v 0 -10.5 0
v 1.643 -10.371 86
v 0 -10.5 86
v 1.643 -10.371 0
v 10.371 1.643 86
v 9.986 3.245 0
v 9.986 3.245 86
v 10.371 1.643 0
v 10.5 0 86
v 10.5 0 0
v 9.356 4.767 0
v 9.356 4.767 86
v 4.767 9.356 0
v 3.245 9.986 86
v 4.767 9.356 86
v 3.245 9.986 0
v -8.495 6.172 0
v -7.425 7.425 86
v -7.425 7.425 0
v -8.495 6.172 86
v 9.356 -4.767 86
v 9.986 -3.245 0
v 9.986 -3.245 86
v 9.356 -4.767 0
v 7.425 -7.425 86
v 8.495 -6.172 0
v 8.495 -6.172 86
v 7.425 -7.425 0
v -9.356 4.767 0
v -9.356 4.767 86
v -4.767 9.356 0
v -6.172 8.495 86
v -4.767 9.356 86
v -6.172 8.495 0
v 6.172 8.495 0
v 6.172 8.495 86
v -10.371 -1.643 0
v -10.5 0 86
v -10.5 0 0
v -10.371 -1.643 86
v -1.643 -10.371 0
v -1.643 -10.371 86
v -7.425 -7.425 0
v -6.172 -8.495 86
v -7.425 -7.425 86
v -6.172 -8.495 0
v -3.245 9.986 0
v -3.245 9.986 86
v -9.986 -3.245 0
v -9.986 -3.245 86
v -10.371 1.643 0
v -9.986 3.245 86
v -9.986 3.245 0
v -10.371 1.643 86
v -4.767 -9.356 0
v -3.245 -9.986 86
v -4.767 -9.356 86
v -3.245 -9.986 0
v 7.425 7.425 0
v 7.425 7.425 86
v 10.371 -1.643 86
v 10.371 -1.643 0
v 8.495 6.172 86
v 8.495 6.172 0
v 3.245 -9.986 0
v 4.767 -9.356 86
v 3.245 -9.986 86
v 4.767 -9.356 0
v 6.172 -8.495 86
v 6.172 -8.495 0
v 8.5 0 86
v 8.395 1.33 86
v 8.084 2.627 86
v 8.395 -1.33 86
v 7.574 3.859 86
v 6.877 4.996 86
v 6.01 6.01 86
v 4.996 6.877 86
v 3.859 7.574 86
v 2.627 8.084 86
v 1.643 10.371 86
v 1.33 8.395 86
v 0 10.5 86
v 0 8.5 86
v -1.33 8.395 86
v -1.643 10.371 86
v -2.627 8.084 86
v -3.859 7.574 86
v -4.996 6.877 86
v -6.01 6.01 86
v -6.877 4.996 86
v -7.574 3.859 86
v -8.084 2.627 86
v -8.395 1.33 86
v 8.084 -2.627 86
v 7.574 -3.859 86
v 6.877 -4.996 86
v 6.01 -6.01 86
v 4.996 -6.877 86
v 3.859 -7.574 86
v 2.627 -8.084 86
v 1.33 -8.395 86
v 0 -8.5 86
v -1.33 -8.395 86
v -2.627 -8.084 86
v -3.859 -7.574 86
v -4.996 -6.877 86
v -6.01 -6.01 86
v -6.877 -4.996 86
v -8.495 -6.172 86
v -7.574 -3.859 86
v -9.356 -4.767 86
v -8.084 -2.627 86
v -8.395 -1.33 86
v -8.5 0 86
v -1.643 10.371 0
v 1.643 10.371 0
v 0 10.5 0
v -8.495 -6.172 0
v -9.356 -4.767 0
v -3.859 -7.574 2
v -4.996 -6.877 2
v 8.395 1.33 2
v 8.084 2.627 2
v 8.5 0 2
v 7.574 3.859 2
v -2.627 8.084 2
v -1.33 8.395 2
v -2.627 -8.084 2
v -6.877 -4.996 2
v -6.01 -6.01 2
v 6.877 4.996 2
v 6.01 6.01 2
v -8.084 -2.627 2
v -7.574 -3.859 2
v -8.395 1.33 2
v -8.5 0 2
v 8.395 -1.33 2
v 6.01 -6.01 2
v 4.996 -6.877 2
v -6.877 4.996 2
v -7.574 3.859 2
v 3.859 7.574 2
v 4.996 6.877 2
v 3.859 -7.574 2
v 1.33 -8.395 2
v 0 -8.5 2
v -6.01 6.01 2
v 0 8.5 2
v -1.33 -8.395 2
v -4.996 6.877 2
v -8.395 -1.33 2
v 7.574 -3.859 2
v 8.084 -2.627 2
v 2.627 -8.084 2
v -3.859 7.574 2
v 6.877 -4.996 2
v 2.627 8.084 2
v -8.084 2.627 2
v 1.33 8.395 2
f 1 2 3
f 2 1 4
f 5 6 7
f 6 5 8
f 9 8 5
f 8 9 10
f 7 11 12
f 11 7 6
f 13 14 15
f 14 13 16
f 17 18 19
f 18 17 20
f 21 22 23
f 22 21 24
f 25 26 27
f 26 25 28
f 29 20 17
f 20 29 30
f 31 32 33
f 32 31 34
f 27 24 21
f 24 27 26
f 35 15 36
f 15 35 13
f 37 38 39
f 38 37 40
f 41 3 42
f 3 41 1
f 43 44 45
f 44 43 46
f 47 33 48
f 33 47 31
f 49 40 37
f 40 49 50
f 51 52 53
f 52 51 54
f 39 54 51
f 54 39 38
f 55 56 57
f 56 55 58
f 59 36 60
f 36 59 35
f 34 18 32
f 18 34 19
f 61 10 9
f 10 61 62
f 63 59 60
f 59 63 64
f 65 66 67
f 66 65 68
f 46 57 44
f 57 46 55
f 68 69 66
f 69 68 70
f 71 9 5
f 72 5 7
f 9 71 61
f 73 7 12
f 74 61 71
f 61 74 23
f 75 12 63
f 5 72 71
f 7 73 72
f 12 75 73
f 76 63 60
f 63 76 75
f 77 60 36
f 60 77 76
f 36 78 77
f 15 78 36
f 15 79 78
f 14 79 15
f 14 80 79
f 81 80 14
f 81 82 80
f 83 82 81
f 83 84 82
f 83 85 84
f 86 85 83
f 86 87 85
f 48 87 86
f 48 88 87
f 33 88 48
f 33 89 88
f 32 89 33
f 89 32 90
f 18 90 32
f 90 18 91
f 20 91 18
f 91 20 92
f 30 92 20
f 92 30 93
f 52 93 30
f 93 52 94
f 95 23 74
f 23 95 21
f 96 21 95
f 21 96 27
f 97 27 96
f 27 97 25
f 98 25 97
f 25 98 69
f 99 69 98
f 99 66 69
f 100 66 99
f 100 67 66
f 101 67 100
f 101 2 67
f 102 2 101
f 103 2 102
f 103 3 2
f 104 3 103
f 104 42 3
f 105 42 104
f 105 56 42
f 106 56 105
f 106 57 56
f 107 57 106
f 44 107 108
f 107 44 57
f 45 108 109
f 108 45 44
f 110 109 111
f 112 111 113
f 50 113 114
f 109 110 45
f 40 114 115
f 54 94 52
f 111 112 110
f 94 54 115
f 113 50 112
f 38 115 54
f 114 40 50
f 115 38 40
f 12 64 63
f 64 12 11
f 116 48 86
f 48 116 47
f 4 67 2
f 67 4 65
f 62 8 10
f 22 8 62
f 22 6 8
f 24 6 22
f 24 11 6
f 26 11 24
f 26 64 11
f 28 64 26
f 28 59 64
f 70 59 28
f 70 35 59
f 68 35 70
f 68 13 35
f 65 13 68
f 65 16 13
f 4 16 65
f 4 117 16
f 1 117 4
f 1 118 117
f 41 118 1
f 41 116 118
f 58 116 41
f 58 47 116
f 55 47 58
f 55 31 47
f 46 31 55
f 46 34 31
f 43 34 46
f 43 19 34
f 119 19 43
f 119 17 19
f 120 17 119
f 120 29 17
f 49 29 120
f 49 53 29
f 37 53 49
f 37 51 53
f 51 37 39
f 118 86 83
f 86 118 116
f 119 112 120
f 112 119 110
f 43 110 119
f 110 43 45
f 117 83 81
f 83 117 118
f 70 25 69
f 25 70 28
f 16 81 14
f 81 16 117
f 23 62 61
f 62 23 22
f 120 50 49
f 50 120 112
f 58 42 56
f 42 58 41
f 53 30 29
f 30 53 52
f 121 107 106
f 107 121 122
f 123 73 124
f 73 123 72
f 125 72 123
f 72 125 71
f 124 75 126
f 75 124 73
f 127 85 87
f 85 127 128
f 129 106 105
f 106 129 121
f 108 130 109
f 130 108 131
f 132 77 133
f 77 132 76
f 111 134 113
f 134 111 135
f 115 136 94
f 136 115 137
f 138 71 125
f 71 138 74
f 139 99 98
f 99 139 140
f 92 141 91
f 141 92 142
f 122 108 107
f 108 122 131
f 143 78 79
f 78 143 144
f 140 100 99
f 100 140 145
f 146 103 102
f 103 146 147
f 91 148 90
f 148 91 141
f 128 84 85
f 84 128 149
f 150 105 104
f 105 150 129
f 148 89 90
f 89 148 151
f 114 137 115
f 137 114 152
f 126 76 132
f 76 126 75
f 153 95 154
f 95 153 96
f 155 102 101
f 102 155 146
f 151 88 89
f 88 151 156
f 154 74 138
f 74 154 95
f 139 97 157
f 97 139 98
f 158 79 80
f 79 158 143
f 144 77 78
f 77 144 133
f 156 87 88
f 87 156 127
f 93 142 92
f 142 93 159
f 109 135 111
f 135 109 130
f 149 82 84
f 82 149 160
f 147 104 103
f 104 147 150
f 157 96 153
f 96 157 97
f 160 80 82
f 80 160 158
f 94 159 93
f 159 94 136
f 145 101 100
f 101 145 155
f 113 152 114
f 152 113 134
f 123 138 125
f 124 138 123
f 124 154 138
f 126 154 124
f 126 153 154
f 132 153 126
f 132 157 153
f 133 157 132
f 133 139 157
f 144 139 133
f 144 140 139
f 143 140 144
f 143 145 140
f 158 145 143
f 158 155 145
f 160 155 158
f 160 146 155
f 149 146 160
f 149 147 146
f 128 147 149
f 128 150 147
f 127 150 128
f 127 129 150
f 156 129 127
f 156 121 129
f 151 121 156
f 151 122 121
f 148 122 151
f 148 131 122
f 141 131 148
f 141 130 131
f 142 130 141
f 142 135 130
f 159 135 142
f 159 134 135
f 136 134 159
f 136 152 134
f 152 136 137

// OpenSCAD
// box for vials.
$fn=40;

vial_dd=17;
vial_zz=38;
lid_extra=4;
ww=2;

module box(n) {
  difference() {
    cylinder(vial_zz*n+ww*(n+1)+lid_extra,d=vial_dd+2*ww);
    translate([0,0,ww]) cylinder(vial_zz*n+ww*n+lid_extra,d=vial_dd);
  }
}

module lid() {
}

box(2);
